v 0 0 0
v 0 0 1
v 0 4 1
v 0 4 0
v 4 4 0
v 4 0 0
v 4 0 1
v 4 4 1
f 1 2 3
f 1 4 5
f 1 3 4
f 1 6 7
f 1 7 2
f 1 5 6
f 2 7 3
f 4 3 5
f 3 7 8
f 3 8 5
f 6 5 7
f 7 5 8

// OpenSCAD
/* Warning, this is a very basic generator with a lot of approximation 
input data : [VQFN, STX, 4x4x1.0mm, 28, , C, C04-00456C]
generated by com.zoubworld.electronics.cad.model3d.Basic
Date : Sun Feb 15 10:50:48 CET 2026
*/

//body
color("black")
translate([0,0,0])
cube([4.0,4.0,1.0], center=false);
